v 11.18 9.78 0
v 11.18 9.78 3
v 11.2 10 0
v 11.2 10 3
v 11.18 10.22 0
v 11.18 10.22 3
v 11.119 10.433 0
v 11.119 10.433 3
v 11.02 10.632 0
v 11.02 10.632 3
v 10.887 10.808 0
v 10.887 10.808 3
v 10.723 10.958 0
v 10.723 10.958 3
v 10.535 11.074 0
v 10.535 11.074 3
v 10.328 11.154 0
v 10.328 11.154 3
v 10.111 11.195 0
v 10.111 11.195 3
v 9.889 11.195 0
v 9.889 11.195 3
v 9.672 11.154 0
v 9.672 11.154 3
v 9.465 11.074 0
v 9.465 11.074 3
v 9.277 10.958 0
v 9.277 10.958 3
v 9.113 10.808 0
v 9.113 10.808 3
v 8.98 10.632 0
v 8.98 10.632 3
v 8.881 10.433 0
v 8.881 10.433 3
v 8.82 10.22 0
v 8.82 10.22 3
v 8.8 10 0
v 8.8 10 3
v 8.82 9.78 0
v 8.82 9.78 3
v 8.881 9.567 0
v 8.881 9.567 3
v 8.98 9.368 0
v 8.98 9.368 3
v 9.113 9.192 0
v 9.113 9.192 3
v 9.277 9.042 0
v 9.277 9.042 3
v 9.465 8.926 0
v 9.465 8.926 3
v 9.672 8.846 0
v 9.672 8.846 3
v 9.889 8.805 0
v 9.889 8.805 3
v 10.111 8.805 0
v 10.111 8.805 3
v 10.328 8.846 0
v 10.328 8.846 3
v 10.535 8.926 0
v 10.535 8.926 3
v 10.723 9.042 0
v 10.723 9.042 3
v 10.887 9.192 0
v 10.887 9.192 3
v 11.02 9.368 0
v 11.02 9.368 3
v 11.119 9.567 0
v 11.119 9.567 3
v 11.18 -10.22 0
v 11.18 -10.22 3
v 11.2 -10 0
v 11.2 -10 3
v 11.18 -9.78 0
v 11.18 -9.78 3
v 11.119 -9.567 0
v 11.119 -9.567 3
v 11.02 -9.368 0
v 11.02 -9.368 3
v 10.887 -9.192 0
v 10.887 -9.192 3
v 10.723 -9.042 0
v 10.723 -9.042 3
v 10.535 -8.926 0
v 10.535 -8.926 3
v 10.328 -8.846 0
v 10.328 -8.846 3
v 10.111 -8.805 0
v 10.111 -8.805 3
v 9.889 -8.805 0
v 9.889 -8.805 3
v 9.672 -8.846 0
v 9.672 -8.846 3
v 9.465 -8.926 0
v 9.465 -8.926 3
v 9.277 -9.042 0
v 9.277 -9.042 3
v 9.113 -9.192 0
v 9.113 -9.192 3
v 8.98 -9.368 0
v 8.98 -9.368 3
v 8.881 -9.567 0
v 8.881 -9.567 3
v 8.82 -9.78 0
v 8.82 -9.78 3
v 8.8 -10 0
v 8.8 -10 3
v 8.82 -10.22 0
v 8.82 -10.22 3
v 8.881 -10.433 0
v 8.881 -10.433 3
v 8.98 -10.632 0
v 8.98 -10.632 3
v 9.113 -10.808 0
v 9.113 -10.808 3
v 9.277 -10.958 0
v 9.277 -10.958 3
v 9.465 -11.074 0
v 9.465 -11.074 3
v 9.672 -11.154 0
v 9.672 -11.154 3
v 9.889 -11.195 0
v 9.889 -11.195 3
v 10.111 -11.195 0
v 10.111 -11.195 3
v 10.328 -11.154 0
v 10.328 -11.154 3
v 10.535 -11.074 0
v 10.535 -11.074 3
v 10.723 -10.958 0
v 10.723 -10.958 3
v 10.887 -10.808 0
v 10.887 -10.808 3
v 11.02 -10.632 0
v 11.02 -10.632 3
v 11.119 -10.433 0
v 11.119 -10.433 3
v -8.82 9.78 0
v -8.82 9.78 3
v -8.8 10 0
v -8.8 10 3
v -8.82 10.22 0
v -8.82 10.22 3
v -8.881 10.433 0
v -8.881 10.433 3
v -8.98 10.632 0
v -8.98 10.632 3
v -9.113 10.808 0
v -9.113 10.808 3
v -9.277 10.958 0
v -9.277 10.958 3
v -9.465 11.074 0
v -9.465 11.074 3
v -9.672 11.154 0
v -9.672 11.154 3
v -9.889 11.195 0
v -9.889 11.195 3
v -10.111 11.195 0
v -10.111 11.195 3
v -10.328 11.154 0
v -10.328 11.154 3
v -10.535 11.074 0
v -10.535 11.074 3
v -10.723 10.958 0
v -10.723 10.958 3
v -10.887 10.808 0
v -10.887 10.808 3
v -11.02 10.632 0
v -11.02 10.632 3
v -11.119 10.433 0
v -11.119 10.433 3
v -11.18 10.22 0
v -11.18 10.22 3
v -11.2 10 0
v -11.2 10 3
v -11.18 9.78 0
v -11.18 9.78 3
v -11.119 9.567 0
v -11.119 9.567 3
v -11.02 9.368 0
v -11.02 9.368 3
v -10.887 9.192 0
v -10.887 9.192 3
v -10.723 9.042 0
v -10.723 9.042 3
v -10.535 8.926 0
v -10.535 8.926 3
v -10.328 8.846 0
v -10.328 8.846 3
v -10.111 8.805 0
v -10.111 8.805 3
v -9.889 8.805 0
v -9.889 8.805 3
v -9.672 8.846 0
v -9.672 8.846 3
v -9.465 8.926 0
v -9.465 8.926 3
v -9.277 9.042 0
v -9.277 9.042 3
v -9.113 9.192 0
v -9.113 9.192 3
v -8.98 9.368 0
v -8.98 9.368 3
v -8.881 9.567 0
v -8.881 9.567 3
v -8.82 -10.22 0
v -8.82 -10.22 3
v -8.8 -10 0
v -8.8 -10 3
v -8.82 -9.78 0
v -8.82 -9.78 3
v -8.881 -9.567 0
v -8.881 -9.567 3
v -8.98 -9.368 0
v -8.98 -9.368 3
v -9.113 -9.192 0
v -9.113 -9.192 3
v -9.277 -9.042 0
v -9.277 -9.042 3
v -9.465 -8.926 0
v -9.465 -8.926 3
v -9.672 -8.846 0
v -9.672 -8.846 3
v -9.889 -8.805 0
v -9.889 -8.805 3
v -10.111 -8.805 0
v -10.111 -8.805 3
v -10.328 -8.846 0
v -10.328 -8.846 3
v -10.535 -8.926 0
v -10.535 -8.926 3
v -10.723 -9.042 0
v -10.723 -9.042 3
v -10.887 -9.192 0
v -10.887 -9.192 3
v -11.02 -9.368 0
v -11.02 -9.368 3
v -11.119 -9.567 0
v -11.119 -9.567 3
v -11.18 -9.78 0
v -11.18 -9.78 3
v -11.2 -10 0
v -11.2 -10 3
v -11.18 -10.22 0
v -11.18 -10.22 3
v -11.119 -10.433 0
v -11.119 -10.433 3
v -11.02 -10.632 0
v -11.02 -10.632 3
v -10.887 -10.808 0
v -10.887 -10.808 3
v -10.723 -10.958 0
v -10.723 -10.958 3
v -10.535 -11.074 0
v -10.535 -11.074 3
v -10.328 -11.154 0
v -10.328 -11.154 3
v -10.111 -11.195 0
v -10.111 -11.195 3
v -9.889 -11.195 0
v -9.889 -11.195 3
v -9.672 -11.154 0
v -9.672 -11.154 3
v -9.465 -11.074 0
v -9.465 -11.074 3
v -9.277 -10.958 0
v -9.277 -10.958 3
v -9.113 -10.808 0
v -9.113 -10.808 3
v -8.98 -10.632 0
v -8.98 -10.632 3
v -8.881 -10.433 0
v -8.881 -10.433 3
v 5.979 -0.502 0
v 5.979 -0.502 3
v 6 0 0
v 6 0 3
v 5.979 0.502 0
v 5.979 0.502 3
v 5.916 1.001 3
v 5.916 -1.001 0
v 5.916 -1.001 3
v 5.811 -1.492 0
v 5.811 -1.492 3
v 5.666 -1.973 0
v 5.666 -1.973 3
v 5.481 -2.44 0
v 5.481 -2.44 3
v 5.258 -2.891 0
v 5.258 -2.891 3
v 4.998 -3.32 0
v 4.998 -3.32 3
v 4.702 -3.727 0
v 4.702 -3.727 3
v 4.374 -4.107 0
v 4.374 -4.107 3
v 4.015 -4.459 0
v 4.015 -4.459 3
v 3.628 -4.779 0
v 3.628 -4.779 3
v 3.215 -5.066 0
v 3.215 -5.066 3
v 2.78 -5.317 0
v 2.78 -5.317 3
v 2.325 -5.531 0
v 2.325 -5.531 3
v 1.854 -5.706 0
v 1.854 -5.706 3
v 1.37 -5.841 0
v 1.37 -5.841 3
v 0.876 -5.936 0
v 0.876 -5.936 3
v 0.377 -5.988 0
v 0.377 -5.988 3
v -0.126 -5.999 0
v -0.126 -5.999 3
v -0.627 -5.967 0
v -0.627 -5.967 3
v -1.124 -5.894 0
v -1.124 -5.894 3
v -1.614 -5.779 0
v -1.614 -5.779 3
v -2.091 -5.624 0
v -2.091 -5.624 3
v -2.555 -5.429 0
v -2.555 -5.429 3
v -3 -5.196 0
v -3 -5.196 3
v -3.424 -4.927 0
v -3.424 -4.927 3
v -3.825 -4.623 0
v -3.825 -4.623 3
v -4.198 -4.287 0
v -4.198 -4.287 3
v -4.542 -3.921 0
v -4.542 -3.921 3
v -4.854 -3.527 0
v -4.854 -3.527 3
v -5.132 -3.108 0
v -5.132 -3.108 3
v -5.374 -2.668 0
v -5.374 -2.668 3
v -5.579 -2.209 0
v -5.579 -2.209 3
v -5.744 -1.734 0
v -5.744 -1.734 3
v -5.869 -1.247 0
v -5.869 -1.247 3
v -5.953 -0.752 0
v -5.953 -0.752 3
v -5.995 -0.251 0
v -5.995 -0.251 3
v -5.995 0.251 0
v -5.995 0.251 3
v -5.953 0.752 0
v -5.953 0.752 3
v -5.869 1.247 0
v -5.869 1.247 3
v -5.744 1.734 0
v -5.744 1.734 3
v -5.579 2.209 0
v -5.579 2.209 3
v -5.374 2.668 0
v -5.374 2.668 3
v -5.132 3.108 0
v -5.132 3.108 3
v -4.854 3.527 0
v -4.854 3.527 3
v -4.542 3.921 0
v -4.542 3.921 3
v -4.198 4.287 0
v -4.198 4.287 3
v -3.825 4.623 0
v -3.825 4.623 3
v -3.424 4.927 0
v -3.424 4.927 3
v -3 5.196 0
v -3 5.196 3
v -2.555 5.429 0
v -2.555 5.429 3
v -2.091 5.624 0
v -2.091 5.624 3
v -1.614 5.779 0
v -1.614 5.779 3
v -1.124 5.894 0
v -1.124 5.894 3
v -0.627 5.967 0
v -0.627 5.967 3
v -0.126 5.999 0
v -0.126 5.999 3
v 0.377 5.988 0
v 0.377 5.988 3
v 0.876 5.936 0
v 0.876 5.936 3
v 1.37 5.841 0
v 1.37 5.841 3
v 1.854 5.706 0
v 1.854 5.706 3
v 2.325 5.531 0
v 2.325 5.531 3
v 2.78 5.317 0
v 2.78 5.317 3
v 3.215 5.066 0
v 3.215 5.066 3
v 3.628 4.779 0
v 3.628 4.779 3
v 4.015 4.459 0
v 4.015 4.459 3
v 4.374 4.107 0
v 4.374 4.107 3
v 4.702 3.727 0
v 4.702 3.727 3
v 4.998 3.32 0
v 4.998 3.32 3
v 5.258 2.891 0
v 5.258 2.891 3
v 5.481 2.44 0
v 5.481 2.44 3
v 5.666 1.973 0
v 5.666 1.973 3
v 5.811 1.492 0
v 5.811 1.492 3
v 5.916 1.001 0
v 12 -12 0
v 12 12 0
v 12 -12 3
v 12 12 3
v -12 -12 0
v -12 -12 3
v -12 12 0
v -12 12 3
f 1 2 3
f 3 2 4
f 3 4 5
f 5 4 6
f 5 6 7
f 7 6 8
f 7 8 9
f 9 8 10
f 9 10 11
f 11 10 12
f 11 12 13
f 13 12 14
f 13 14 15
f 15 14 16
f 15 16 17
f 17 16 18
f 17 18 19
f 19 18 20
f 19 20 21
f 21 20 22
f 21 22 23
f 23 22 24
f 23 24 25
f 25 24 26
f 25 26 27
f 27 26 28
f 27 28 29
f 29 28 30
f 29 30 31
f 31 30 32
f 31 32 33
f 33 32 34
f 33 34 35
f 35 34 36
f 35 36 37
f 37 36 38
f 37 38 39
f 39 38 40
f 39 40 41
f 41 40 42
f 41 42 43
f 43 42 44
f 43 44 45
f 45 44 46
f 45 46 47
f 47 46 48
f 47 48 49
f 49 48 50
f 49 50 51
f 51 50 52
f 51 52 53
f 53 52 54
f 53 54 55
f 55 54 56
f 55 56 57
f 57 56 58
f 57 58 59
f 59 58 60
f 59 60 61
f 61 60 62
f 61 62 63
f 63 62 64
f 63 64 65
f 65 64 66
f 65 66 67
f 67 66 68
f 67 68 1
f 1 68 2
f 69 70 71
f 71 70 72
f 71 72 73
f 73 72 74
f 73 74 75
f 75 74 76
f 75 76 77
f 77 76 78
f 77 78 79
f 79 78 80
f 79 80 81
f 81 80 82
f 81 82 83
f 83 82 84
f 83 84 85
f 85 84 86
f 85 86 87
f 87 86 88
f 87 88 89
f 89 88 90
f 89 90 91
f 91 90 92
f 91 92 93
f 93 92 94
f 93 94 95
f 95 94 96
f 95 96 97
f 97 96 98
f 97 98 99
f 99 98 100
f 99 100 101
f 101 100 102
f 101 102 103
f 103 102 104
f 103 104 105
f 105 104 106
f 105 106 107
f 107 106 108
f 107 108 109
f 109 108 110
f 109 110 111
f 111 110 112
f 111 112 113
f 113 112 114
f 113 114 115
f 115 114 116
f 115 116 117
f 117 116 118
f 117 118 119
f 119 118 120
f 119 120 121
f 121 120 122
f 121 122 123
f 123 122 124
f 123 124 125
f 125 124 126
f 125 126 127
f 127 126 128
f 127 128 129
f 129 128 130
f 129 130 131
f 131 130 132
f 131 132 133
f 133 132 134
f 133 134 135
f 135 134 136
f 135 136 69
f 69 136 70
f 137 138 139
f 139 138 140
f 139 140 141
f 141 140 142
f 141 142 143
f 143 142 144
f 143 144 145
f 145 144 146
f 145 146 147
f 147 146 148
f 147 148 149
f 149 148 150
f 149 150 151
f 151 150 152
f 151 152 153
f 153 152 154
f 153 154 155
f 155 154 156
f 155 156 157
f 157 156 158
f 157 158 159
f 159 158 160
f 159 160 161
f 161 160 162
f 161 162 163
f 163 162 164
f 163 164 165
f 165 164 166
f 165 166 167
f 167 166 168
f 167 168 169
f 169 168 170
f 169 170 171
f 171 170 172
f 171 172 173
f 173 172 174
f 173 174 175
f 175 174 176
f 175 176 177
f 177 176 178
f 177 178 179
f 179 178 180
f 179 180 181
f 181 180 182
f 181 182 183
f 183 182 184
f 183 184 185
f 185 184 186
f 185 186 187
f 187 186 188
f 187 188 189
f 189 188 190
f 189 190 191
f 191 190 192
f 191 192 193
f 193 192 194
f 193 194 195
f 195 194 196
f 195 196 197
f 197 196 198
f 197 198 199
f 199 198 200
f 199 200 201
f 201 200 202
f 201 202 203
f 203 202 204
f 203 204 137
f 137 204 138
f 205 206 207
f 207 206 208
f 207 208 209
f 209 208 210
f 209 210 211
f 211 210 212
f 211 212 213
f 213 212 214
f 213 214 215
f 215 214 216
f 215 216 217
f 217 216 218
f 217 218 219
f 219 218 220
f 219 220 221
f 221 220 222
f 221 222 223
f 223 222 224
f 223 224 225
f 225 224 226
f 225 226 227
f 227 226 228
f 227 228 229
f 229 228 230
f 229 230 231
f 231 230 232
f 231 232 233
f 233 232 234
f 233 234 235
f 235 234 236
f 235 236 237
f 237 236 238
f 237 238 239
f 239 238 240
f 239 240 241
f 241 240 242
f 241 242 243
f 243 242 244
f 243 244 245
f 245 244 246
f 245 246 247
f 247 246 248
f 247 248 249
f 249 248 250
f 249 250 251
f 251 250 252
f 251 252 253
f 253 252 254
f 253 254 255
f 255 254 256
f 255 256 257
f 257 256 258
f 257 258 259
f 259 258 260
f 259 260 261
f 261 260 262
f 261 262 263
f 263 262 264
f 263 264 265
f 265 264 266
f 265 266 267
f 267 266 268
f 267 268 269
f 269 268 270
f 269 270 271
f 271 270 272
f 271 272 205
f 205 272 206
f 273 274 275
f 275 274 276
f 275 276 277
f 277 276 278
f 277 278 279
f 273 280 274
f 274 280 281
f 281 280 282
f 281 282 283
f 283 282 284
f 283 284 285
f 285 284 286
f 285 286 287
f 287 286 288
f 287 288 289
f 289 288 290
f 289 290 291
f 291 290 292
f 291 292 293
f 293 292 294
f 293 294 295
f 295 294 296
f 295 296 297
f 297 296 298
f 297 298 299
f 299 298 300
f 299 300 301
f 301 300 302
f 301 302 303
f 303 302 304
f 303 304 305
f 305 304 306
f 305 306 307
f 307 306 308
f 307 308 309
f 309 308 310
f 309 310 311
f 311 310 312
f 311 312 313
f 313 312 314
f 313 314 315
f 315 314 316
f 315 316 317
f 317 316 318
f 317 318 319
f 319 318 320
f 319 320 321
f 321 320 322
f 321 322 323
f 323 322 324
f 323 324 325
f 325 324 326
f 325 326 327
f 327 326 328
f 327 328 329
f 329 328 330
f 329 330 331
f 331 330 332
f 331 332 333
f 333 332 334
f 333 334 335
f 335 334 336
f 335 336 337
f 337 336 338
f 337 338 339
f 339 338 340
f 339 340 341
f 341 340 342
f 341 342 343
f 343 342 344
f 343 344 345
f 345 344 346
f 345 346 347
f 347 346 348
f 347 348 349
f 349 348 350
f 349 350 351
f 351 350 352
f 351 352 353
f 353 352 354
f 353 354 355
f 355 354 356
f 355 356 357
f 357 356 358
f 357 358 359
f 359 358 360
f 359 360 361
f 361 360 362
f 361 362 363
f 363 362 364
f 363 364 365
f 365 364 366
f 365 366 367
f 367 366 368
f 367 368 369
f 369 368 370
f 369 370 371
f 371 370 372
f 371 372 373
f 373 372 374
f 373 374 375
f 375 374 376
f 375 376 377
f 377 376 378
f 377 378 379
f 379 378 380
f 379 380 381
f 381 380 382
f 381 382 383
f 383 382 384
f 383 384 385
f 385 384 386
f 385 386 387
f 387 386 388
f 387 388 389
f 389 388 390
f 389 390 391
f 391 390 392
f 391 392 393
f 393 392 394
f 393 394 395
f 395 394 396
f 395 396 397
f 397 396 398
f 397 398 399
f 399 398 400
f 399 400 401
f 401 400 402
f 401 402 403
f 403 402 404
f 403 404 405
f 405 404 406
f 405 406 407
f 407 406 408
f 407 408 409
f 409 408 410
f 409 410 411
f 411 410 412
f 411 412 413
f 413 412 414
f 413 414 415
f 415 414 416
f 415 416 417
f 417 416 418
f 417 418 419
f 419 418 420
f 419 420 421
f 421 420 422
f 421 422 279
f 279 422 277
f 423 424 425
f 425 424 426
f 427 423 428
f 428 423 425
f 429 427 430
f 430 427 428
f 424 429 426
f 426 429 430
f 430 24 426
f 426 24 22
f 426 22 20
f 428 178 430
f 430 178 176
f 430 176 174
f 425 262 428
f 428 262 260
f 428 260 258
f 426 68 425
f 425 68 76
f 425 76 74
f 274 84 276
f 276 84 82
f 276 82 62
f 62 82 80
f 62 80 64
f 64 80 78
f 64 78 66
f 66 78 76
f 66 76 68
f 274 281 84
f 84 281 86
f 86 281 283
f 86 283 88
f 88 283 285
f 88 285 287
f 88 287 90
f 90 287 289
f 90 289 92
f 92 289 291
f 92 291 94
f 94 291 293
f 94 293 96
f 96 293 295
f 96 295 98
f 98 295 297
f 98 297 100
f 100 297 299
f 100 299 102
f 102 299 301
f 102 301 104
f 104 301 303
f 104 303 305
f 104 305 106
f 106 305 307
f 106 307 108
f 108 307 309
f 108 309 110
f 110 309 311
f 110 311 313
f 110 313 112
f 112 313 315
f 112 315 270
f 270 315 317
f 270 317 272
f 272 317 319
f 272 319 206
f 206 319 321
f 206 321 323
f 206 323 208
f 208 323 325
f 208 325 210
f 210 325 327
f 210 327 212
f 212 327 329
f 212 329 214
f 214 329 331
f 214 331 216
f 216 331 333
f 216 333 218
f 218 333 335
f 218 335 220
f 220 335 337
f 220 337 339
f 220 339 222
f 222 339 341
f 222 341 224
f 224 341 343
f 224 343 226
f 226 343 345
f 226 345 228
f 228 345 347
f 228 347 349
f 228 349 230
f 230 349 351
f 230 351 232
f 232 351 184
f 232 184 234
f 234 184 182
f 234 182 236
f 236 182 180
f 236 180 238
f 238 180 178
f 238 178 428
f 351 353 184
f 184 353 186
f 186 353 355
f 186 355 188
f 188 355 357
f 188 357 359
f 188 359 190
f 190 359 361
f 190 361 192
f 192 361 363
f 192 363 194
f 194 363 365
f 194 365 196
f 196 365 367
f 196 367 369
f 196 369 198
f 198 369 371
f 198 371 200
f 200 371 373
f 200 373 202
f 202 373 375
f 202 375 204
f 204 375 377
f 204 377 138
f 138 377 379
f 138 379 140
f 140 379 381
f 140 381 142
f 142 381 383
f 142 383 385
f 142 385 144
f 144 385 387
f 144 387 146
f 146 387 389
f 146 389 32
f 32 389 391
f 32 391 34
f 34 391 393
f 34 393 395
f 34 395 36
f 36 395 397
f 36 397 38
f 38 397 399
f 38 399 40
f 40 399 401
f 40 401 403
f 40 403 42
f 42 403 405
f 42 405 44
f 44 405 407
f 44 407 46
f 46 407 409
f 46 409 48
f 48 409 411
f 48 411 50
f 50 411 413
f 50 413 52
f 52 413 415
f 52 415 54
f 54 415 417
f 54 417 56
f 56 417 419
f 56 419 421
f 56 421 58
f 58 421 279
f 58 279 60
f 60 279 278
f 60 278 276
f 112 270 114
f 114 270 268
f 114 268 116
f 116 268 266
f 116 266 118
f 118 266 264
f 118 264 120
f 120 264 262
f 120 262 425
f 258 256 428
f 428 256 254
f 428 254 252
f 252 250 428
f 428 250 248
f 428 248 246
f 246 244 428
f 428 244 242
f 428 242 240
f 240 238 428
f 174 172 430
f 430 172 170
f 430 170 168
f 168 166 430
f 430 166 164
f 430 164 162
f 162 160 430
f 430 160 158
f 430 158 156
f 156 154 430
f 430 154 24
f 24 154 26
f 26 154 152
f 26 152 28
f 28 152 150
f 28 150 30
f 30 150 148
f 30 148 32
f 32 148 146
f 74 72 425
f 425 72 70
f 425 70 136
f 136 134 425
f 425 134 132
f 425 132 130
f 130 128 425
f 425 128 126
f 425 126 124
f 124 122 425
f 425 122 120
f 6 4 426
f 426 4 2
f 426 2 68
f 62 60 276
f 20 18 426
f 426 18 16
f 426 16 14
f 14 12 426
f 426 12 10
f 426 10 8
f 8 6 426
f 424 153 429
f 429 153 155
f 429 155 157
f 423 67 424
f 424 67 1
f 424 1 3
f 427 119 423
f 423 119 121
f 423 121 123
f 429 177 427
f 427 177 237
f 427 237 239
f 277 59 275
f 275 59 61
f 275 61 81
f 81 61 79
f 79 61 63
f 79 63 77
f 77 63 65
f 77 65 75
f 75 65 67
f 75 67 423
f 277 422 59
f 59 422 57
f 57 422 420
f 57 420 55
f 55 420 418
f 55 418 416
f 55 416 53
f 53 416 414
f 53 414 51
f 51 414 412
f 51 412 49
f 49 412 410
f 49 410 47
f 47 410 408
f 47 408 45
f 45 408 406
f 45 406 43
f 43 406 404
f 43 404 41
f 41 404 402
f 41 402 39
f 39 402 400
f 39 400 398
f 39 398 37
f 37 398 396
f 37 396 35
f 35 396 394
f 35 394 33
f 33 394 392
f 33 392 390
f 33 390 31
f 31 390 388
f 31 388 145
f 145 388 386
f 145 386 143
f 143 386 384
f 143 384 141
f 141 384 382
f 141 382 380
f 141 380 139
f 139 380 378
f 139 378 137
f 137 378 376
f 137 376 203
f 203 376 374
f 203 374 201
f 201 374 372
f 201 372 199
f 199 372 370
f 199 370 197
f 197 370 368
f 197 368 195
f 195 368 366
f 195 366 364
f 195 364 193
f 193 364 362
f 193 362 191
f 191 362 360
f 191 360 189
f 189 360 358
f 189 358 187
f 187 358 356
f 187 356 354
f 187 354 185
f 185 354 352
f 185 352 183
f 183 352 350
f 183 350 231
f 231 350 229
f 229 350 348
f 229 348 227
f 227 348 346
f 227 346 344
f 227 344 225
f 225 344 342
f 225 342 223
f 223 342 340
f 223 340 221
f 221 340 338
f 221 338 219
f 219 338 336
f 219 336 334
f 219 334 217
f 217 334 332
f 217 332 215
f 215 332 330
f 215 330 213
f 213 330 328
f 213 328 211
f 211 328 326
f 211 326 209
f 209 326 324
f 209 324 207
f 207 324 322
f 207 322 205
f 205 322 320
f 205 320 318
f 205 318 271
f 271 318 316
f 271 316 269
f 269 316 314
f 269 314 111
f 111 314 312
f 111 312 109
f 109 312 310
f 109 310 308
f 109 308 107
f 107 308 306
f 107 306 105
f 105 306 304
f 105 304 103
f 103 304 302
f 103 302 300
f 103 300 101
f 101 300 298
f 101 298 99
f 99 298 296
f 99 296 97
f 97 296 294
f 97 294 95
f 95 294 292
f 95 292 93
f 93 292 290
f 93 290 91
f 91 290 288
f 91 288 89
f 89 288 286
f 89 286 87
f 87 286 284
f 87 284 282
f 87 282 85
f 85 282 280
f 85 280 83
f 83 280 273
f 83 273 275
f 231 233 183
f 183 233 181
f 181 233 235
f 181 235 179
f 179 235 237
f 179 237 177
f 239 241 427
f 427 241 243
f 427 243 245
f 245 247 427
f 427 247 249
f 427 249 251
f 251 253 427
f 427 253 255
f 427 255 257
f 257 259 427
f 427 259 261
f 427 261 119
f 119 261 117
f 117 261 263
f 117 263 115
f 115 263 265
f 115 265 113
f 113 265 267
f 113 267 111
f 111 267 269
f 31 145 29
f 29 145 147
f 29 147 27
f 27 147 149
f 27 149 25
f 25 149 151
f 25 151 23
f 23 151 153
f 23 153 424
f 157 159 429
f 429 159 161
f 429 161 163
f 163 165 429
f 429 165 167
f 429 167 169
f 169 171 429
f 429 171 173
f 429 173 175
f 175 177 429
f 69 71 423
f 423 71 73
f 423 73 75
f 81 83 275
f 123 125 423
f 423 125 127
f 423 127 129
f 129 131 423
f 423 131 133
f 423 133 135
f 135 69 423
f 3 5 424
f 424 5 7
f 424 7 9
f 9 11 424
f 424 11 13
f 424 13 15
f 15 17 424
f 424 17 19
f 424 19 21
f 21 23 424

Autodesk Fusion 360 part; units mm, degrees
sketch "Sketch1" plane through (0, 0, 0) normal (0, 0, 1) x (1, 0, 0)
  line L0 (12, -12) -> (-12, -12)
  line L1 (-12, -12) -> (-12, 12)
  line L2 (-12, 12) -> (12, 12)
  line L3 (12, 12) -> (12, -12)
  line L4 (12, -12) -> (-12, 12) construction
  line L5 (-12, -12) -> (12, 12) construction
  dimension "d1" = 24
  dimension "d2" = 24
extrude "Extrude1" add sketch "Sketch1" along normal blind 3
sketch "Sketch2" plane through (0, 0, 3) normal (0, 0, 1) x (-1, 0, 0)
  line L0 (-12, -12) -> (12, -12)
  line L1 (12, -12) -> (12, 12)
  line L2 (12, 12) -> (-12, 12)
  line L3 (-12, 12) -> (-12, -12)
  circle A0 centre (10, -10) radius 1.1
  circle A1 centre (-10, -10) radius 1.1
  circle A2 centre (10, 10) radius 1.1
  circle A3 centre (-10, 10) radius 1.1
  dimension "d5" = 2.2
  dimension "d6" = 2.2
  dimension "d7" = 2.2
  dimension "d8" = 2.2
  dimension "d9" = 10
  dimension "d10" = 10
  dimension "d11" = 10
  dimension "d12" = 10
  dimension "d13" = 10
  dimension "d14" = 10
  dimension "d15" = 10
  dimension "d16" = 10
extrude "Extrude2" cut sketch "Sketch2" against normal through all contours A0 | A1 | A2 | A3
sketch "Sketch3" plane through (0, 0, 3) normal (0, 0, 1) x (-1, 0, 0)
  circle A0 centre (10, -10) radius 1.1
  circle A1 centre (10, 10) radius 1.1
  circle A2 centre (-10, -10) radius 1.1
  circle A3 centre (-10, 10) radius 1.1
  line L0 (-12, -12) -> (12, -12)
  line L1 (12, -12) -> (12, 12)
  line L2 (12, 12) -> (-12, 12)
  line L3 (-12, 12) -> (-12, -12)
  circle A4 centre (0, 0) radius 6
  dimension "d18" = 12
extrude "Extrude3" cut sketch "Sketch3" against normal blind 6 contours A4
sketch "Sketch4" plane through (0, 0, 3) normal (0, 0, 1) x (-1, 0, 0)
  circle A0 centre (0, 0) radius 6
  circle A1 centre (10, -10) radius 1.1
  circle A2 centre (10, 10) radius 1.1
  circle A3 centre (-10, -10) radius 1.1
  circle A4 centre (-10, 10) radius 1.1
  line L0 (-12, -12) -> (12, -12)
  line L1 (12, -12) -> (12, 12)
  line L2 (12, 12) -> (-12, 12)
  line L3 (-12, 12) -> (-12, -12)
  circle A5 centre (10, -10) radius 1.2
  circle A6 centre (-10, -10) radius 1.2
  circle A7 centre (10, 10) radius 1.2
  circle A8 centre (-10, 10) radius 1.2
  dimension "d21" = 2.4
  dimension "d22" = 2.4
  dimension "d23" = 2.4
  dimension "d24" = 2.4
extrude "Extrude4" cut sketch "Sketch4" against normal blind 5 contours A5 | A6 | A7 | A8
